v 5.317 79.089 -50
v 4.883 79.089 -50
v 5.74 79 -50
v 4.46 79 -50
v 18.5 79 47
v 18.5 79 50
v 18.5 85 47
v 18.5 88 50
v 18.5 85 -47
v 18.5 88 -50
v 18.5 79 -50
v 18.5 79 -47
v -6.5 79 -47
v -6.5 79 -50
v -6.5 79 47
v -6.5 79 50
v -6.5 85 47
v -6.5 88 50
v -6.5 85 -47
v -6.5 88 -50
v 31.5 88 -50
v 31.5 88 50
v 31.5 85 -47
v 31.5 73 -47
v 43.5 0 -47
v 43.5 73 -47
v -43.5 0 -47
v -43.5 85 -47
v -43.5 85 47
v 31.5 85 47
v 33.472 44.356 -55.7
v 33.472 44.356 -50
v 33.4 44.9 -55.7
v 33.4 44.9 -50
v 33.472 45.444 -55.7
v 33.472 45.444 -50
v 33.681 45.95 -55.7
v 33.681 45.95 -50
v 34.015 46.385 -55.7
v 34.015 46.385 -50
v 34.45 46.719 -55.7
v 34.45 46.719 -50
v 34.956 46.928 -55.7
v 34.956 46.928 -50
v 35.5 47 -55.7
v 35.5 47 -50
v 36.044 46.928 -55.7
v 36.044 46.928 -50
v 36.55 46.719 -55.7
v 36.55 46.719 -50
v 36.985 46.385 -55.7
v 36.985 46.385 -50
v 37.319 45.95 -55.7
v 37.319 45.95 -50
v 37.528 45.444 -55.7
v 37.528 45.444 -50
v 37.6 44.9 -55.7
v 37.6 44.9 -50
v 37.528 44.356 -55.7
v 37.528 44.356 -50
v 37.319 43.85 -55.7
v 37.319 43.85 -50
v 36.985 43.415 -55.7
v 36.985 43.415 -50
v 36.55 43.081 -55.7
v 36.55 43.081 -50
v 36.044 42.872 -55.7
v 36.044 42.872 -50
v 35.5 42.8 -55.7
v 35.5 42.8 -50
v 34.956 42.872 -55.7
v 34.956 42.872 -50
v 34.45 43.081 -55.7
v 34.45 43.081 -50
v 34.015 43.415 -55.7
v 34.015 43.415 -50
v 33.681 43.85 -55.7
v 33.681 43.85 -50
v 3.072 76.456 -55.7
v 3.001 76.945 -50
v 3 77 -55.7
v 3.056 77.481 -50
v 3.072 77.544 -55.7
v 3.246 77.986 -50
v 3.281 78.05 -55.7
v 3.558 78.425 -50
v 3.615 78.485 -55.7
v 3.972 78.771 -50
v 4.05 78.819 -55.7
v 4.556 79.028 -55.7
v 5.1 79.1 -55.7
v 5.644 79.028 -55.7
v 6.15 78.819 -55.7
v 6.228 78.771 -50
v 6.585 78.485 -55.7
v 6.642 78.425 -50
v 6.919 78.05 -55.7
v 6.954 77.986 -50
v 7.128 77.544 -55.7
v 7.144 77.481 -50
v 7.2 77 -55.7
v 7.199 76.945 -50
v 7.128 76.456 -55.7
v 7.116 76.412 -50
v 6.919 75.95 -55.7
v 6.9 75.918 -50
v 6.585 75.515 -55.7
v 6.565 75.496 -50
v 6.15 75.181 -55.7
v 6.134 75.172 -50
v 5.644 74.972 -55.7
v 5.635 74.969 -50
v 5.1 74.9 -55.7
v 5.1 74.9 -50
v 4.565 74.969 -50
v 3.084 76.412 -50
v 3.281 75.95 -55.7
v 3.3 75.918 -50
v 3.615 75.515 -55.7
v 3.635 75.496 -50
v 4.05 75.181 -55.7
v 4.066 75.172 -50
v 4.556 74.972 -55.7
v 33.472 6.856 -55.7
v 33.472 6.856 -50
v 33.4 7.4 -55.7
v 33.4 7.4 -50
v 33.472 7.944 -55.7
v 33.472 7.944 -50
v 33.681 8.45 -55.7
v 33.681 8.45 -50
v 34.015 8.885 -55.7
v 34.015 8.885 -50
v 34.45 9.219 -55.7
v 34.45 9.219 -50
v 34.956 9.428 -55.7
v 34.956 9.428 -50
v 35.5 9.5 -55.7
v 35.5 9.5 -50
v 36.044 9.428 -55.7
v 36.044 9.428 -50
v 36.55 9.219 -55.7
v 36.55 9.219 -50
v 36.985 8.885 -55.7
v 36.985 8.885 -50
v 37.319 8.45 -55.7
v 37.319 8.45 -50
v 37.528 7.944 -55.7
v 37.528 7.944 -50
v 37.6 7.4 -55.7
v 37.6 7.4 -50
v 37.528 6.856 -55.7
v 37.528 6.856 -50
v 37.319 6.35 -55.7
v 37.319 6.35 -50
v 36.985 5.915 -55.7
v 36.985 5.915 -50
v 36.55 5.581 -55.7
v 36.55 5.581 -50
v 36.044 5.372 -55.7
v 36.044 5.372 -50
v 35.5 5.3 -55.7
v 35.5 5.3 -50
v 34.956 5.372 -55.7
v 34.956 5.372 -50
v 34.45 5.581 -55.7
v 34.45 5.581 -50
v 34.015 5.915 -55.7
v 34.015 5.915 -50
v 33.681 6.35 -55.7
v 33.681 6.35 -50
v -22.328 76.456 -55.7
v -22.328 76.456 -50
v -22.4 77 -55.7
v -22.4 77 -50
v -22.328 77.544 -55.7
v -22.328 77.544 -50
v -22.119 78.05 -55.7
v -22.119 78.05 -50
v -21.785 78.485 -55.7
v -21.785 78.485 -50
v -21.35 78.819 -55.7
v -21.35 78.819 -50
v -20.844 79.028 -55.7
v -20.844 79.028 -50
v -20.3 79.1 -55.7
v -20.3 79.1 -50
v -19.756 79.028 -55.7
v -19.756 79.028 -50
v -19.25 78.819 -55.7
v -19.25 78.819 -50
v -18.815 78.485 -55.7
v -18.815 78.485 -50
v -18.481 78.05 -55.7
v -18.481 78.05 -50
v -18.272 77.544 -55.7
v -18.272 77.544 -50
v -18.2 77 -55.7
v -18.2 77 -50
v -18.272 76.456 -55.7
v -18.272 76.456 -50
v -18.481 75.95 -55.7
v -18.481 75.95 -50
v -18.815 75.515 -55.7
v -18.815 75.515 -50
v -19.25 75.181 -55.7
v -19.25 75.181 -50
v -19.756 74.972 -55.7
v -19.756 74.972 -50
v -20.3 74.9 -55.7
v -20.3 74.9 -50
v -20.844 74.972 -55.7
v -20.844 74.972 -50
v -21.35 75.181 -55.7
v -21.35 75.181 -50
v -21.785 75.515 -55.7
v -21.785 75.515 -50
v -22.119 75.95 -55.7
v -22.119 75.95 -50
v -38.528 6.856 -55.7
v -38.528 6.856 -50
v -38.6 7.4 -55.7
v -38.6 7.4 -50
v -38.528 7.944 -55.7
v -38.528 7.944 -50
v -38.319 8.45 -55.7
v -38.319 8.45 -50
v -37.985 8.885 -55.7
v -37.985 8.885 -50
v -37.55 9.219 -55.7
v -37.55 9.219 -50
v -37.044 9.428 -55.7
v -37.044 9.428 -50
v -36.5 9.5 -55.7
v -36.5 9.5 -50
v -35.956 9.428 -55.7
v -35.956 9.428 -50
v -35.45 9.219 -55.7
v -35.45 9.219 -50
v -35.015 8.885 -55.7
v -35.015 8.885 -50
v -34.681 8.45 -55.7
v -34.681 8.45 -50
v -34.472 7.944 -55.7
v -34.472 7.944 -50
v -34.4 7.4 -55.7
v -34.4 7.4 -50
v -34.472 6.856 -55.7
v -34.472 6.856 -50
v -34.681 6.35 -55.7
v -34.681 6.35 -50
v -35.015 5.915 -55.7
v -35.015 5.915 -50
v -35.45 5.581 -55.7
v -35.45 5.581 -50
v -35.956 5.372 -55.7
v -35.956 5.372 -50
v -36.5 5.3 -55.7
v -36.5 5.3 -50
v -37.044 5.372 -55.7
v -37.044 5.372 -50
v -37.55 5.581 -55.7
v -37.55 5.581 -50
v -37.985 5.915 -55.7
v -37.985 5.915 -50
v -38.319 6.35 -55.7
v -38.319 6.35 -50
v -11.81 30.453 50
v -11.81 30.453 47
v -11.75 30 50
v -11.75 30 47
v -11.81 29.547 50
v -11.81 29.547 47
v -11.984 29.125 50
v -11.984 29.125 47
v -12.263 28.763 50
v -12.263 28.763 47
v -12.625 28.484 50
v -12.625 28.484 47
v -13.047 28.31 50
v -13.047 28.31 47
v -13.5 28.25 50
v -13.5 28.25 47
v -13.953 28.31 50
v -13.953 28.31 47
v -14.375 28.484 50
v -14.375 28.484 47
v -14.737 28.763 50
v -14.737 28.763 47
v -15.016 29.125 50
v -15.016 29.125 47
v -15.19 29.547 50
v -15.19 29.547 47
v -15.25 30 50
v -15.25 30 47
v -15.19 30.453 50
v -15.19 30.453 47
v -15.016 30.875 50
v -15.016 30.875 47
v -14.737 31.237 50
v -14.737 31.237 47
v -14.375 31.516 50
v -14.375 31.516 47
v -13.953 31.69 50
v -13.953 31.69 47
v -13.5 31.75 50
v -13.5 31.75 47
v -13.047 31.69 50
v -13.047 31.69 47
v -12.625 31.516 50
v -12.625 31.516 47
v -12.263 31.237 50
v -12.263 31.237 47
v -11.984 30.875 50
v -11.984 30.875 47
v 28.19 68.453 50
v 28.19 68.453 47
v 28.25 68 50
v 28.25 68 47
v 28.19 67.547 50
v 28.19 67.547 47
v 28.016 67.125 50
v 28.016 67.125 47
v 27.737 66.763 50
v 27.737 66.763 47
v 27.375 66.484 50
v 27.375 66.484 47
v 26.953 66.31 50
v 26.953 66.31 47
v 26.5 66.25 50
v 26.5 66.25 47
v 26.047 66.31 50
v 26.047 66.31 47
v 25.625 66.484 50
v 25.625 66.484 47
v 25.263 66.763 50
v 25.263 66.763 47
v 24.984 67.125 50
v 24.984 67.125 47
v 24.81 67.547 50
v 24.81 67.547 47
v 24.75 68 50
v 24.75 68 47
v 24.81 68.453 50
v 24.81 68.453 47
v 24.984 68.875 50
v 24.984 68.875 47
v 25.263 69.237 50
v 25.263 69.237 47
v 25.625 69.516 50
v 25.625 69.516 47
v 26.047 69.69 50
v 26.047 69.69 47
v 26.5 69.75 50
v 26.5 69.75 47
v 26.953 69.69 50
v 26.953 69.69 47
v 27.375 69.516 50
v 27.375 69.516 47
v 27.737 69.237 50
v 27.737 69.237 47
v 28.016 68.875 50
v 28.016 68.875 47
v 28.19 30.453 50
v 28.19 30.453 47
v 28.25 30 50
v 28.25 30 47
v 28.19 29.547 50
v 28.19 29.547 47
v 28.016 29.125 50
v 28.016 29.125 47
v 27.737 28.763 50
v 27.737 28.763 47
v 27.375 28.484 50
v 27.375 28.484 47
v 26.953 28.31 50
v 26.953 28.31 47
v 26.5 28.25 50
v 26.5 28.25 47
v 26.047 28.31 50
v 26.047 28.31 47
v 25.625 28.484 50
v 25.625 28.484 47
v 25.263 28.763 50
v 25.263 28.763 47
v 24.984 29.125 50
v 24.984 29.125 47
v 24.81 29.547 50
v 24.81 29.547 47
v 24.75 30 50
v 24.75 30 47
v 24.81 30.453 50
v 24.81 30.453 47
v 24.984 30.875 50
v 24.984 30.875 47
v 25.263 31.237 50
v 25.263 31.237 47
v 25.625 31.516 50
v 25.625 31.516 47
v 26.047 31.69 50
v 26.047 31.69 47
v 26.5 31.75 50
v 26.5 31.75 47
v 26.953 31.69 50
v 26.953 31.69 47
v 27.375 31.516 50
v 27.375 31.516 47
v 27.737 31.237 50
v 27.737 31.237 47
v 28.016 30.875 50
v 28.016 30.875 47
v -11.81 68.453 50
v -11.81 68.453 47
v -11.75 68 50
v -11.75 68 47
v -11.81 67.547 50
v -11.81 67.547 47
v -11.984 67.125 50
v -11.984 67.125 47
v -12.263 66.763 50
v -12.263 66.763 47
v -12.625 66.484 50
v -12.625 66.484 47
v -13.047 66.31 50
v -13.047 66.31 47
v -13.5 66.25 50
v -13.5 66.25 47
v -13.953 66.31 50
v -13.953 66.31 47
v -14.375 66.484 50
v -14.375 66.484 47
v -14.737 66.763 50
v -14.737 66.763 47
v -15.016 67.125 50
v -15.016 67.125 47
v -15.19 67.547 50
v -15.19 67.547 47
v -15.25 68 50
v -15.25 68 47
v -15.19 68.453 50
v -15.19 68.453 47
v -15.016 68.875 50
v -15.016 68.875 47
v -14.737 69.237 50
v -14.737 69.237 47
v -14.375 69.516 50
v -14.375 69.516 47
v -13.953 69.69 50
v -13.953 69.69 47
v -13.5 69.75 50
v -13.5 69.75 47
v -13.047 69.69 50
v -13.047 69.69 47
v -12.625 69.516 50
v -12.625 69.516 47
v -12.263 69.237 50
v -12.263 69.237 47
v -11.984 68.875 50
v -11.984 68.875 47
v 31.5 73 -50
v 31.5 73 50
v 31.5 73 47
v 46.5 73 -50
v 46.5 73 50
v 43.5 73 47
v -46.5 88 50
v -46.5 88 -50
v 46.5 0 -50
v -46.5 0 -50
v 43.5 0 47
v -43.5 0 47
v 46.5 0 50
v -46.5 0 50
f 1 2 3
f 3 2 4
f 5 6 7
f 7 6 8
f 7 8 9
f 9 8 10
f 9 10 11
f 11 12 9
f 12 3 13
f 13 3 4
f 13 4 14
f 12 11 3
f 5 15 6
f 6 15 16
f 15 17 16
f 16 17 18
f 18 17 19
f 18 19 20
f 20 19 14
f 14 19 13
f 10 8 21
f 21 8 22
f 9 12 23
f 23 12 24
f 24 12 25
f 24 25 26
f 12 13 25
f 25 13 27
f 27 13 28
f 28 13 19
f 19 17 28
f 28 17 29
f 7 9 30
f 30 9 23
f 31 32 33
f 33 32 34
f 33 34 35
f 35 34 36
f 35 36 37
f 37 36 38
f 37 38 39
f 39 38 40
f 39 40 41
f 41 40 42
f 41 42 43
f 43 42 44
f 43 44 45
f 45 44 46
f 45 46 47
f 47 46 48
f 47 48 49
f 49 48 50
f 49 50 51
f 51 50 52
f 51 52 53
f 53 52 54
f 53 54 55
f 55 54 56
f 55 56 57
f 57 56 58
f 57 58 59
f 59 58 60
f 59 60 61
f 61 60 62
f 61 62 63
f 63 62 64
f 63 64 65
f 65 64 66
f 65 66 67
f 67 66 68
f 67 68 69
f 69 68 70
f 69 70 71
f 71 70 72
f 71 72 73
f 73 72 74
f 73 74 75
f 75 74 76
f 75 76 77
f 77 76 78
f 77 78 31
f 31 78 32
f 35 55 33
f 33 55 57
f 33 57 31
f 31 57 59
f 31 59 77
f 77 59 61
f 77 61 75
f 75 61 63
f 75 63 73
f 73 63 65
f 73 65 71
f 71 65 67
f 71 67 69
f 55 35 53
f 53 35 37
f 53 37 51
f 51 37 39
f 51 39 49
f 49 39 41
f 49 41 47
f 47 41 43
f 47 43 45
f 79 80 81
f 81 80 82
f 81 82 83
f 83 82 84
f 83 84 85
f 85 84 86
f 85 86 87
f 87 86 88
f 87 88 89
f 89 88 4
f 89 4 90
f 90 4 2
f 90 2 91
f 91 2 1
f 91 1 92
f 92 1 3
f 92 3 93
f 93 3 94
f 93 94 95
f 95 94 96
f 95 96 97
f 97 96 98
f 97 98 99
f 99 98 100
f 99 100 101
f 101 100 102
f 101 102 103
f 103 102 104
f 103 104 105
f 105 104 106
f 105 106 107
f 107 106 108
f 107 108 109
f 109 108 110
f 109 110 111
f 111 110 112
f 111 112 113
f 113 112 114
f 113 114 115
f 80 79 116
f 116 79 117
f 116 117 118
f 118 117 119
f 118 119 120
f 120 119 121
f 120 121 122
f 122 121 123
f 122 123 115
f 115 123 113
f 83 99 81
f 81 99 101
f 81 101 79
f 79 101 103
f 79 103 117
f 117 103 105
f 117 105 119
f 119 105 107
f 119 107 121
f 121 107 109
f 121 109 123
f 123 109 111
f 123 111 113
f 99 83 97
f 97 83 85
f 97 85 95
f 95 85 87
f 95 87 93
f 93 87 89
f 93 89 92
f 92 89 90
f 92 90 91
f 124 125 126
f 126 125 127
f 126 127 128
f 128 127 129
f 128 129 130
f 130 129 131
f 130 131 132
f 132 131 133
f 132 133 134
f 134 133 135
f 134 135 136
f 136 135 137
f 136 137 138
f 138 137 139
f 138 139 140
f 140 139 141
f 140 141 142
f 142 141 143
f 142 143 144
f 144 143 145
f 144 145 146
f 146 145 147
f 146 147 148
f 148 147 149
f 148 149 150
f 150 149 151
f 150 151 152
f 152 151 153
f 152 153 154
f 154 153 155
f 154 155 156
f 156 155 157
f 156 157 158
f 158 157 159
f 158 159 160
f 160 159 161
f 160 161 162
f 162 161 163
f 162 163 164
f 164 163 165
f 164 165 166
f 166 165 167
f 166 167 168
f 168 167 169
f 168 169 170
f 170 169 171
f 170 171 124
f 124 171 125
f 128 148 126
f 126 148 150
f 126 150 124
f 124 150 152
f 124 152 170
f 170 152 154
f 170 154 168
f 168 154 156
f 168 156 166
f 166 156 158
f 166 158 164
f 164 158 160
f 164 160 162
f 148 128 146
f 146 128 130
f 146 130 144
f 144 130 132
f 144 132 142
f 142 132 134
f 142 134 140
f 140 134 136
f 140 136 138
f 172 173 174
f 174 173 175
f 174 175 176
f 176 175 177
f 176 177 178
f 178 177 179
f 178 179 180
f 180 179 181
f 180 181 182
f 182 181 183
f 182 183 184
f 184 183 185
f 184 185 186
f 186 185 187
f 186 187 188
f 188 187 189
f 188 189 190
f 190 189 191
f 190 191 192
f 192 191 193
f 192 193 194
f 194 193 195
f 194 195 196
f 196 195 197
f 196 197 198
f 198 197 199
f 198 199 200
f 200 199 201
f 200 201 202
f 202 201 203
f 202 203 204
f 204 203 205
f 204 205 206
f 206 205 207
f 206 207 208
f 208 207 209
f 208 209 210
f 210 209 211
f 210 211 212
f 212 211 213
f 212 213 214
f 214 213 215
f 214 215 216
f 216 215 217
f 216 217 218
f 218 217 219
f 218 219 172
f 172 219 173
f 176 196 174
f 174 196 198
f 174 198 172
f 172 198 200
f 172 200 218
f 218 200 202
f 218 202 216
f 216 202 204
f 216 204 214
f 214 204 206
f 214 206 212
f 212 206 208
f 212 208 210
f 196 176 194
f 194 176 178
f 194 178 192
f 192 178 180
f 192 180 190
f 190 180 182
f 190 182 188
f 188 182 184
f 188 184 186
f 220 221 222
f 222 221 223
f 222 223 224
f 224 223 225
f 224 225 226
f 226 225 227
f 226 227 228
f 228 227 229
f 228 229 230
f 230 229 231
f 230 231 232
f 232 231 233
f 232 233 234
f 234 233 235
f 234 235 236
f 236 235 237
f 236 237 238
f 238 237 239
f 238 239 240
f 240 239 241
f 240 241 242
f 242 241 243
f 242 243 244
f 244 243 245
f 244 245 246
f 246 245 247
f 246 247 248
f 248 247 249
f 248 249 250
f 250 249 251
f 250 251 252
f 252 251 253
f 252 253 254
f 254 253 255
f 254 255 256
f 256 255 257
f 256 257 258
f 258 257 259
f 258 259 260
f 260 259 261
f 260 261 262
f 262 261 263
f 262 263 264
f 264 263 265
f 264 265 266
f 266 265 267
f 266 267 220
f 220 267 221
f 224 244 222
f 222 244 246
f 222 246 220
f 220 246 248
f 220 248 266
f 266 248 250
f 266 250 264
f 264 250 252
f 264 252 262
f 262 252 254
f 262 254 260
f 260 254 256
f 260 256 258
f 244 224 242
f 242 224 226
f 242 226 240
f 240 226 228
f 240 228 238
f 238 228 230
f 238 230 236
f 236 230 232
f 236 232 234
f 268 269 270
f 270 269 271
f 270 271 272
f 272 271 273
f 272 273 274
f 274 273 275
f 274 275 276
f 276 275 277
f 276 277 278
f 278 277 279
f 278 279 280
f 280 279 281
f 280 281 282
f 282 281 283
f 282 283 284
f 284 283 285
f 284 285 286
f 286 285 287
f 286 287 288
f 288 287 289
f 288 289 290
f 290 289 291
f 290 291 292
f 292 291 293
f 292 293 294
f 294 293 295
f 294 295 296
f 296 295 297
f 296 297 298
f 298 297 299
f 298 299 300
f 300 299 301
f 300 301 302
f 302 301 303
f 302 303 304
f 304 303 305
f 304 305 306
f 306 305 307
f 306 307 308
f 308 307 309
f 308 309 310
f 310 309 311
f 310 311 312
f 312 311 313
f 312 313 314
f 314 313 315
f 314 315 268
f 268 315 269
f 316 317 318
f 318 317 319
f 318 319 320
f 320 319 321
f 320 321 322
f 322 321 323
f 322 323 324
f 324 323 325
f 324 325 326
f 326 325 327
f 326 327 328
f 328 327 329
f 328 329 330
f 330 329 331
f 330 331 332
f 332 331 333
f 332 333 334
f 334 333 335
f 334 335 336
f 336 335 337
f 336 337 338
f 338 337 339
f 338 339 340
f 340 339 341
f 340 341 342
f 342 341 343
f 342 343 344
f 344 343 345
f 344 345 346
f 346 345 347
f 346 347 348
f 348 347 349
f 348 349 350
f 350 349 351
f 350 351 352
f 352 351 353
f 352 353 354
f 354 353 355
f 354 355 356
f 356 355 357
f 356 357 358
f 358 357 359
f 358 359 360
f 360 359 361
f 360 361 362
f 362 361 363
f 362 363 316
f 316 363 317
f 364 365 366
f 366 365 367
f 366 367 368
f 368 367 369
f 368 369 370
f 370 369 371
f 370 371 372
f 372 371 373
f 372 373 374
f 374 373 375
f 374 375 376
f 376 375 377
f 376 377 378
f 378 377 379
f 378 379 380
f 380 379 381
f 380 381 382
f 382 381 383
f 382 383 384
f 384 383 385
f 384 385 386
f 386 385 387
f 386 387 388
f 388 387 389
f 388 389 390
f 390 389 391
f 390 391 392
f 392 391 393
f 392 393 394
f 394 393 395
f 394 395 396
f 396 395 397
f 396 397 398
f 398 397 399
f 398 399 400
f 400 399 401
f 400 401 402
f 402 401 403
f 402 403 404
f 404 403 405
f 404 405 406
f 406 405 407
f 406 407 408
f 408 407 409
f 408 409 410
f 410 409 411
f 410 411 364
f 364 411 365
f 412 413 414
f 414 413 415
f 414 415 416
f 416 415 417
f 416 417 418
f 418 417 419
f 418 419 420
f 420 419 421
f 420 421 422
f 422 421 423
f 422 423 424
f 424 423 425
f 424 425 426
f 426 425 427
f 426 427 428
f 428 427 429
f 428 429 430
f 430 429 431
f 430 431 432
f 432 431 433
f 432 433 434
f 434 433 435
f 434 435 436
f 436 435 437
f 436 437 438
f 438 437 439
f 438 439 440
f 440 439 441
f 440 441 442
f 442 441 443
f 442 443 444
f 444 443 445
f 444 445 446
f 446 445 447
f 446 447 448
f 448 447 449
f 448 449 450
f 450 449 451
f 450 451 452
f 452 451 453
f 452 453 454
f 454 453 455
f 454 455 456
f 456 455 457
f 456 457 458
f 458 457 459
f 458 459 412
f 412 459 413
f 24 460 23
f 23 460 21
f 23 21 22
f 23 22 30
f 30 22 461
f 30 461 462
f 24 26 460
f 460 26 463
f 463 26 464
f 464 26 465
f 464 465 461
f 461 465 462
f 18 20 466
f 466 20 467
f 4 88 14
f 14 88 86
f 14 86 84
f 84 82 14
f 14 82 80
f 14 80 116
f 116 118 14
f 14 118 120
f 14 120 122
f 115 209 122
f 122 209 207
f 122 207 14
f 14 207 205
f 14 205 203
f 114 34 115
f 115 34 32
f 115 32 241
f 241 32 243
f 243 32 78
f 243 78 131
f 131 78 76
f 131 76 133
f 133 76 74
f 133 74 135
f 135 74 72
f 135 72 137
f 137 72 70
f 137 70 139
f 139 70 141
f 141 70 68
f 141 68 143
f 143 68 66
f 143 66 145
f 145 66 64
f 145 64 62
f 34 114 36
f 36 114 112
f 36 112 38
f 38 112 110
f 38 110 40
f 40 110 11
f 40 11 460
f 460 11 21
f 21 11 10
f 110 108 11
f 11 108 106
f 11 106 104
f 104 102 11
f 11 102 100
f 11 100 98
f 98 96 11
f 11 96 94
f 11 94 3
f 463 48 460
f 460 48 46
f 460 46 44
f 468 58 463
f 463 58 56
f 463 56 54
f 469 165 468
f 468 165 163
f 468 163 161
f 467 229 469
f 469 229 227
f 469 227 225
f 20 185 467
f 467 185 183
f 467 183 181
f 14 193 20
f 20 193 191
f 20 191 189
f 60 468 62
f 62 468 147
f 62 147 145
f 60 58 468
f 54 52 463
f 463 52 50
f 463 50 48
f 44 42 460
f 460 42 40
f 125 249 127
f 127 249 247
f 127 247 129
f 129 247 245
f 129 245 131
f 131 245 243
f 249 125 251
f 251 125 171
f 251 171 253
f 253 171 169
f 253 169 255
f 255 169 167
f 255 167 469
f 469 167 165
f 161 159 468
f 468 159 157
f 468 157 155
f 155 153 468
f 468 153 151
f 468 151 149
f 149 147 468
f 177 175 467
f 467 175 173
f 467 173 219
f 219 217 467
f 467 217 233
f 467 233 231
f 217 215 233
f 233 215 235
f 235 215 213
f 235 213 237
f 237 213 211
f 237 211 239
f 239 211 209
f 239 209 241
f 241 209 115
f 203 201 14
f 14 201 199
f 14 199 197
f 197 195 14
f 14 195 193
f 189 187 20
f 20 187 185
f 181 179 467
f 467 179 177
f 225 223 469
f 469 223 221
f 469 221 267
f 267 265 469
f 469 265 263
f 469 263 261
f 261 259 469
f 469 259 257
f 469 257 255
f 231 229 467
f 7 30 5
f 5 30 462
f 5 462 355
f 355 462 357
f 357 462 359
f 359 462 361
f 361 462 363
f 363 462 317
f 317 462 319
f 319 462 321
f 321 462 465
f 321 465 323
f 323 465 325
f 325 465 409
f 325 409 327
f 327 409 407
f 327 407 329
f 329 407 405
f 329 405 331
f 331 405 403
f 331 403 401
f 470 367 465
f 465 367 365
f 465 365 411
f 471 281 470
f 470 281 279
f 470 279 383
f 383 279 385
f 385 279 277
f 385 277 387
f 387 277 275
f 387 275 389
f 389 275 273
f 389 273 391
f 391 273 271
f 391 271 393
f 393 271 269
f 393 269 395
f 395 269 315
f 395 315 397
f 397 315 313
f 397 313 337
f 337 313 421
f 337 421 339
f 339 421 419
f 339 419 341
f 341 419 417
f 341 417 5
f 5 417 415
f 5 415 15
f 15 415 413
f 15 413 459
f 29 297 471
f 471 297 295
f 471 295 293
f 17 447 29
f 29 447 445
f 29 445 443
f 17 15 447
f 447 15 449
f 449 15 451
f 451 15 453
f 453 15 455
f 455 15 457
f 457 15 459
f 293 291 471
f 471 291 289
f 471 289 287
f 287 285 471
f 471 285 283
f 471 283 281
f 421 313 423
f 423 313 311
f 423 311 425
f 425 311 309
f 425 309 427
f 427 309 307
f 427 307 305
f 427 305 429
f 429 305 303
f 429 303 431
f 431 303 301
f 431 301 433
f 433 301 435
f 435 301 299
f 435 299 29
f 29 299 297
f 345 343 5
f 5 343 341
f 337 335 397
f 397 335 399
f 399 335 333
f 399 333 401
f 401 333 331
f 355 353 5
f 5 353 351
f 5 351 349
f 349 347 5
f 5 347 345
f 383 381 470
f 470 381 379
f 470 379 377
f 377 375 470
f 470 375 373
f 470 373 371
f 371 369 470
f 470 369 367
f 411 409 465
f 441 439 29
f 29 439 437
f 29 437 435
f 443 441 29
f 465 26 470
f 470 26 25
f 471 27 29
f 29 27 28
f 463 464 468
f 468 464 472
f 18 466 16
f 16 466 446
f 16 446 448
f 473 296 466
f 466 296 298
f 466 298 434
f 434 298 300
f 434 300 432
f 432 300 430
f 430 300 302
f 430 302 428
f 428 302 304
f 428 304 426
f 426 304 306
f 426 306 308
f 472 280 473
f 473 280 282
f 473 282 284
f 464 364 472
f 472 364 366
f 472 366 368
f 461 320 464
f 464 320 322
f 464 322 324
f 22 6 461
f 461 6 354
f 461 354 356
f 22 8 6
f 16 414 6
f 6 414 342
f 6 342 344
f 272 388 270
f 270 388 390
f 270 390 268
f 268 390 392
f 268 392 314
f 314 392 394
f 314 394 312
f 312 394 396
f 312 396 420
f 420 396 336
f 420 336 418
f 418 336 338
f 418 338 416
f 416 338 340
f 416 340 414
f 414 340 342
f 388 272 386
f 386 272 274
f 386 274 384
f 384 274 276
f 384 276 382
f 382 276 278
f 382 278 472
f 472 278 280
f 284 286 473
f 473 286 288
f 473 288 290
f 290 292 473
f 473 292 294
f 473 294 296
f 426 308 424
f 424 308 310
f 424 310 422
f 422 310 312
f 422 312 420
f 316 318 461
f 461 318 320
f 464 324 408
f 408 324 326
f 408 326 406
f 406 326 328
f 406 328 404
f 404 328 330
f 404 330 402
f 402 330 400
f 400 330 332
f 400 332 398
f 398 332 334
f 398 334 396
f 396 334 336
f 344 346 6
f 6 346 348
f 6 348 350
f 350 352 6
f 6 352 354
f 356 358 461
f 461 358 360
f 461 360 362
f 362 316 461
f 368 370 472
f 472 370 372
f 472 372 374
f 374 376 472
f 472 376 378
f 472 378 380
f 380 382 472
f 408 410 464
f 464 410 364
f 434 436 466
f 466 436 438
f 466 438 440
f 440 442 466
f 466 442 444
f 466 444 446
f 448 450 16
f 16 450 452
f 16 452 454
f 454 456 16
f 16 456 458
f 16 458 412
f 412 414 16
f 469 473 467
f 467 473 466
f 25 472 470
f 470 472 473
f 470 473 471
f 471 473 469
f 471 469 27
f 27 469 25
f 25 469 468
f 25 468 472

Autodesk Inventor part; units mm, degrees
ref_plane "YZ Plane" through (0, 0, 0) normal (1, 0, 0) x (0, 1, 0)
ref_plane "XZ Plane" through (0, 0, 0) normal (0, 1, 0) x (-1, 0, 0)
ref_plane "XY Plane" through (0, 0, 0) normal (0, 0, 1) x (1, 0, 0)
sketch "Esquisse1" plane through (0, 0, 0) normal (0, 1, 0) x (-1, 0, 0)
  line L0 (-46.5, 50) -> (46.5, 50)
  line L1 (46.5, 50) -> (46.5, -50)
  line L2 (46.5, -50) -> (-46.5, -50)
  line L3 (-46.5, -50) -> (-46.5, 50)
  line L4 (-46.5, 50) -> (46.5, -50) construction
  line L5 (46.5, 50) -> (-46.5, -50) construction
  point P0 (0, 0)
  dimension "d0" = 100
  dimension "d1" = 93
extrude "Extrusion1" add sketch "Esquisse1" along normal blind 88
sketch "Esquisse2" plane through (0, 0, 0) normal (0, -1, 0) x (1, 0, 0)
  line L0 (-43.5, 47) -> (43.5, 47)
  line L1 (43.5, 47) -> (43.5, -47)
  line L2 (43.5, -47) -> (-43.5, -47)
  line L3 (-43.5, -47) -> (-43.5, 47)
  line L4 (-43.5, 47) -> (43.5, -47) construction
  line L5 (43.5, 47) -> (-43.5, -47) construction
  line L6 (46.5, 50) -> (46.5, -50) projected
  line L7 (-46.5, 50) -> (46.5, 50) projected
  point P0 (0, 0)
  dimension "d4" = 3
  dimension "d5" = 3
extrude "Extrusion2" cut sketch "Esquisse2" against normal blind 85
sketch "Esquisse3" plane through (-46.5, 0, 50) normal (0, 0, 1) x (1, 0, 0)
  line L0 (0, 88) -> (93, 88) projected
  line L1 (93, 88) -> (78, 88)
  line L2 (78, 88) -> (78, 73)
  line L3 (78, 73) -> (93, 73)
  line L4 (93, 73) -> (93, 88)
  point P0 (46.5, 0)
  dimension "d8" = 15
  dimension "d9" = 15
extrude "Extrusion3" cut sketch "Esquisse3" against normal up to surface (100 mm away)
sketch "Esquisse4" plane through (-46.5, 0, 50) normal (0, 0, 1) x (1, 0, 0)
  circle A0 centre (73, 68) radius 1.75
  circle A1 centre (33, 68) radius 1.75
  circle A2 centre (73, 30) radius 1.75
  circle A3 centre (33, 30) radius 1.75
  line L0 (93, 0) -> (93, 73) projected
  line L1 (0, 88) -> (78, 88) projected
  point P0 (46.5, 0)
  dimension "d12" = 40
  dimension "d13" = 3.5
  dimension "d14" = 3.5
  dimension "d15" = 3.5
  dimension "d16" = 3.5
  dimension "d17" = 40
  dimension "d18" = 0
  dimension "d19" = 0
  dimension "d20" = 38
  dimension "d21" = 20
  dimension "d22" = 20
  dimension "d23" = 0
extrude "Extrusion4" cut sketch "Esquisse4" against normal up to surface (3 mm away)
sketch "Esquisse5" plane through (46.5, 0, -50) normal (0, 0, -1) x (-1, 0, 0)
  circle A0 centre (66.8, 77) radius 2.1
  circle A1 centre (41.4, 77) radius 2.1
  circle A2 centre (11, 44.9) radius 2.1
  circle A3 centre (11, 7.4) radius 2.1
  line L0 (0, 0) -> (0, 73) projected
  line L1 (15, 88) -> (93, 88) projected
  line L2 (15, 88) -> (15, 73) projected
  line L3 (15, 73) -> (0, 73) projected
  circle A4 centre (83, 7.4) radius 2.1
  line L4 (93, 0) -> (93, 88) projected
  point P0 (46.5, 0)
  dimension "d26" = 4.2
  dimension "d27" = 4.2
  dimension "d28" = 4.2
  dimension "d29" = 4.2
  dimension "d30" = 11
  dimension "d31" = 0
  dimension "d32" = 11
  dimension "d33" = 0
  dimension "d34" = 37.5
  dimension "d35" = 25.4
  dimension "d36" = 26.4
  dimension "d37" = 28.1
  dimension "d38" = 4.2
  dimension "d39" = 0
  dimension "d40" = 10
extrude "Extrusion5" add sketch "Esquisse5" along normal blind 5.7
sketch "Esquisse6" plane through (-36.5, 7.4, -55.7) normal (0, 0, -1) x (-1, 0, 0)
  point P0 (-36.5, -7.4)
sketch "Esquisse7" plane through (-46.5, 0, 50) normal (0, 0, 1) x (1, 0, 0)
  line L0 (0, 88) -> (78, 88) projected
  line L1 (65, 88) -> (40, 88)
  line L2 (40, 88) -> (40, 79)
  line L3 (40, 79) -> (65, 79)
  line L4 (65, 79) -> (65, 88)
  line L5 (78, 73) -> (78, 88) projected
  point P0 (46.5, 0)
  point P1 (78, 80.5)
  point P2 (65, 83.5)
  dimension "d43" = 25
  dimension "d44" = 13
  dimension "d45" = 9
extrude "Extrusion6" cut sketch "Esquisse7" against normal up to surface (100 mm away)
properties part number "support_imu_Impression 3D"
